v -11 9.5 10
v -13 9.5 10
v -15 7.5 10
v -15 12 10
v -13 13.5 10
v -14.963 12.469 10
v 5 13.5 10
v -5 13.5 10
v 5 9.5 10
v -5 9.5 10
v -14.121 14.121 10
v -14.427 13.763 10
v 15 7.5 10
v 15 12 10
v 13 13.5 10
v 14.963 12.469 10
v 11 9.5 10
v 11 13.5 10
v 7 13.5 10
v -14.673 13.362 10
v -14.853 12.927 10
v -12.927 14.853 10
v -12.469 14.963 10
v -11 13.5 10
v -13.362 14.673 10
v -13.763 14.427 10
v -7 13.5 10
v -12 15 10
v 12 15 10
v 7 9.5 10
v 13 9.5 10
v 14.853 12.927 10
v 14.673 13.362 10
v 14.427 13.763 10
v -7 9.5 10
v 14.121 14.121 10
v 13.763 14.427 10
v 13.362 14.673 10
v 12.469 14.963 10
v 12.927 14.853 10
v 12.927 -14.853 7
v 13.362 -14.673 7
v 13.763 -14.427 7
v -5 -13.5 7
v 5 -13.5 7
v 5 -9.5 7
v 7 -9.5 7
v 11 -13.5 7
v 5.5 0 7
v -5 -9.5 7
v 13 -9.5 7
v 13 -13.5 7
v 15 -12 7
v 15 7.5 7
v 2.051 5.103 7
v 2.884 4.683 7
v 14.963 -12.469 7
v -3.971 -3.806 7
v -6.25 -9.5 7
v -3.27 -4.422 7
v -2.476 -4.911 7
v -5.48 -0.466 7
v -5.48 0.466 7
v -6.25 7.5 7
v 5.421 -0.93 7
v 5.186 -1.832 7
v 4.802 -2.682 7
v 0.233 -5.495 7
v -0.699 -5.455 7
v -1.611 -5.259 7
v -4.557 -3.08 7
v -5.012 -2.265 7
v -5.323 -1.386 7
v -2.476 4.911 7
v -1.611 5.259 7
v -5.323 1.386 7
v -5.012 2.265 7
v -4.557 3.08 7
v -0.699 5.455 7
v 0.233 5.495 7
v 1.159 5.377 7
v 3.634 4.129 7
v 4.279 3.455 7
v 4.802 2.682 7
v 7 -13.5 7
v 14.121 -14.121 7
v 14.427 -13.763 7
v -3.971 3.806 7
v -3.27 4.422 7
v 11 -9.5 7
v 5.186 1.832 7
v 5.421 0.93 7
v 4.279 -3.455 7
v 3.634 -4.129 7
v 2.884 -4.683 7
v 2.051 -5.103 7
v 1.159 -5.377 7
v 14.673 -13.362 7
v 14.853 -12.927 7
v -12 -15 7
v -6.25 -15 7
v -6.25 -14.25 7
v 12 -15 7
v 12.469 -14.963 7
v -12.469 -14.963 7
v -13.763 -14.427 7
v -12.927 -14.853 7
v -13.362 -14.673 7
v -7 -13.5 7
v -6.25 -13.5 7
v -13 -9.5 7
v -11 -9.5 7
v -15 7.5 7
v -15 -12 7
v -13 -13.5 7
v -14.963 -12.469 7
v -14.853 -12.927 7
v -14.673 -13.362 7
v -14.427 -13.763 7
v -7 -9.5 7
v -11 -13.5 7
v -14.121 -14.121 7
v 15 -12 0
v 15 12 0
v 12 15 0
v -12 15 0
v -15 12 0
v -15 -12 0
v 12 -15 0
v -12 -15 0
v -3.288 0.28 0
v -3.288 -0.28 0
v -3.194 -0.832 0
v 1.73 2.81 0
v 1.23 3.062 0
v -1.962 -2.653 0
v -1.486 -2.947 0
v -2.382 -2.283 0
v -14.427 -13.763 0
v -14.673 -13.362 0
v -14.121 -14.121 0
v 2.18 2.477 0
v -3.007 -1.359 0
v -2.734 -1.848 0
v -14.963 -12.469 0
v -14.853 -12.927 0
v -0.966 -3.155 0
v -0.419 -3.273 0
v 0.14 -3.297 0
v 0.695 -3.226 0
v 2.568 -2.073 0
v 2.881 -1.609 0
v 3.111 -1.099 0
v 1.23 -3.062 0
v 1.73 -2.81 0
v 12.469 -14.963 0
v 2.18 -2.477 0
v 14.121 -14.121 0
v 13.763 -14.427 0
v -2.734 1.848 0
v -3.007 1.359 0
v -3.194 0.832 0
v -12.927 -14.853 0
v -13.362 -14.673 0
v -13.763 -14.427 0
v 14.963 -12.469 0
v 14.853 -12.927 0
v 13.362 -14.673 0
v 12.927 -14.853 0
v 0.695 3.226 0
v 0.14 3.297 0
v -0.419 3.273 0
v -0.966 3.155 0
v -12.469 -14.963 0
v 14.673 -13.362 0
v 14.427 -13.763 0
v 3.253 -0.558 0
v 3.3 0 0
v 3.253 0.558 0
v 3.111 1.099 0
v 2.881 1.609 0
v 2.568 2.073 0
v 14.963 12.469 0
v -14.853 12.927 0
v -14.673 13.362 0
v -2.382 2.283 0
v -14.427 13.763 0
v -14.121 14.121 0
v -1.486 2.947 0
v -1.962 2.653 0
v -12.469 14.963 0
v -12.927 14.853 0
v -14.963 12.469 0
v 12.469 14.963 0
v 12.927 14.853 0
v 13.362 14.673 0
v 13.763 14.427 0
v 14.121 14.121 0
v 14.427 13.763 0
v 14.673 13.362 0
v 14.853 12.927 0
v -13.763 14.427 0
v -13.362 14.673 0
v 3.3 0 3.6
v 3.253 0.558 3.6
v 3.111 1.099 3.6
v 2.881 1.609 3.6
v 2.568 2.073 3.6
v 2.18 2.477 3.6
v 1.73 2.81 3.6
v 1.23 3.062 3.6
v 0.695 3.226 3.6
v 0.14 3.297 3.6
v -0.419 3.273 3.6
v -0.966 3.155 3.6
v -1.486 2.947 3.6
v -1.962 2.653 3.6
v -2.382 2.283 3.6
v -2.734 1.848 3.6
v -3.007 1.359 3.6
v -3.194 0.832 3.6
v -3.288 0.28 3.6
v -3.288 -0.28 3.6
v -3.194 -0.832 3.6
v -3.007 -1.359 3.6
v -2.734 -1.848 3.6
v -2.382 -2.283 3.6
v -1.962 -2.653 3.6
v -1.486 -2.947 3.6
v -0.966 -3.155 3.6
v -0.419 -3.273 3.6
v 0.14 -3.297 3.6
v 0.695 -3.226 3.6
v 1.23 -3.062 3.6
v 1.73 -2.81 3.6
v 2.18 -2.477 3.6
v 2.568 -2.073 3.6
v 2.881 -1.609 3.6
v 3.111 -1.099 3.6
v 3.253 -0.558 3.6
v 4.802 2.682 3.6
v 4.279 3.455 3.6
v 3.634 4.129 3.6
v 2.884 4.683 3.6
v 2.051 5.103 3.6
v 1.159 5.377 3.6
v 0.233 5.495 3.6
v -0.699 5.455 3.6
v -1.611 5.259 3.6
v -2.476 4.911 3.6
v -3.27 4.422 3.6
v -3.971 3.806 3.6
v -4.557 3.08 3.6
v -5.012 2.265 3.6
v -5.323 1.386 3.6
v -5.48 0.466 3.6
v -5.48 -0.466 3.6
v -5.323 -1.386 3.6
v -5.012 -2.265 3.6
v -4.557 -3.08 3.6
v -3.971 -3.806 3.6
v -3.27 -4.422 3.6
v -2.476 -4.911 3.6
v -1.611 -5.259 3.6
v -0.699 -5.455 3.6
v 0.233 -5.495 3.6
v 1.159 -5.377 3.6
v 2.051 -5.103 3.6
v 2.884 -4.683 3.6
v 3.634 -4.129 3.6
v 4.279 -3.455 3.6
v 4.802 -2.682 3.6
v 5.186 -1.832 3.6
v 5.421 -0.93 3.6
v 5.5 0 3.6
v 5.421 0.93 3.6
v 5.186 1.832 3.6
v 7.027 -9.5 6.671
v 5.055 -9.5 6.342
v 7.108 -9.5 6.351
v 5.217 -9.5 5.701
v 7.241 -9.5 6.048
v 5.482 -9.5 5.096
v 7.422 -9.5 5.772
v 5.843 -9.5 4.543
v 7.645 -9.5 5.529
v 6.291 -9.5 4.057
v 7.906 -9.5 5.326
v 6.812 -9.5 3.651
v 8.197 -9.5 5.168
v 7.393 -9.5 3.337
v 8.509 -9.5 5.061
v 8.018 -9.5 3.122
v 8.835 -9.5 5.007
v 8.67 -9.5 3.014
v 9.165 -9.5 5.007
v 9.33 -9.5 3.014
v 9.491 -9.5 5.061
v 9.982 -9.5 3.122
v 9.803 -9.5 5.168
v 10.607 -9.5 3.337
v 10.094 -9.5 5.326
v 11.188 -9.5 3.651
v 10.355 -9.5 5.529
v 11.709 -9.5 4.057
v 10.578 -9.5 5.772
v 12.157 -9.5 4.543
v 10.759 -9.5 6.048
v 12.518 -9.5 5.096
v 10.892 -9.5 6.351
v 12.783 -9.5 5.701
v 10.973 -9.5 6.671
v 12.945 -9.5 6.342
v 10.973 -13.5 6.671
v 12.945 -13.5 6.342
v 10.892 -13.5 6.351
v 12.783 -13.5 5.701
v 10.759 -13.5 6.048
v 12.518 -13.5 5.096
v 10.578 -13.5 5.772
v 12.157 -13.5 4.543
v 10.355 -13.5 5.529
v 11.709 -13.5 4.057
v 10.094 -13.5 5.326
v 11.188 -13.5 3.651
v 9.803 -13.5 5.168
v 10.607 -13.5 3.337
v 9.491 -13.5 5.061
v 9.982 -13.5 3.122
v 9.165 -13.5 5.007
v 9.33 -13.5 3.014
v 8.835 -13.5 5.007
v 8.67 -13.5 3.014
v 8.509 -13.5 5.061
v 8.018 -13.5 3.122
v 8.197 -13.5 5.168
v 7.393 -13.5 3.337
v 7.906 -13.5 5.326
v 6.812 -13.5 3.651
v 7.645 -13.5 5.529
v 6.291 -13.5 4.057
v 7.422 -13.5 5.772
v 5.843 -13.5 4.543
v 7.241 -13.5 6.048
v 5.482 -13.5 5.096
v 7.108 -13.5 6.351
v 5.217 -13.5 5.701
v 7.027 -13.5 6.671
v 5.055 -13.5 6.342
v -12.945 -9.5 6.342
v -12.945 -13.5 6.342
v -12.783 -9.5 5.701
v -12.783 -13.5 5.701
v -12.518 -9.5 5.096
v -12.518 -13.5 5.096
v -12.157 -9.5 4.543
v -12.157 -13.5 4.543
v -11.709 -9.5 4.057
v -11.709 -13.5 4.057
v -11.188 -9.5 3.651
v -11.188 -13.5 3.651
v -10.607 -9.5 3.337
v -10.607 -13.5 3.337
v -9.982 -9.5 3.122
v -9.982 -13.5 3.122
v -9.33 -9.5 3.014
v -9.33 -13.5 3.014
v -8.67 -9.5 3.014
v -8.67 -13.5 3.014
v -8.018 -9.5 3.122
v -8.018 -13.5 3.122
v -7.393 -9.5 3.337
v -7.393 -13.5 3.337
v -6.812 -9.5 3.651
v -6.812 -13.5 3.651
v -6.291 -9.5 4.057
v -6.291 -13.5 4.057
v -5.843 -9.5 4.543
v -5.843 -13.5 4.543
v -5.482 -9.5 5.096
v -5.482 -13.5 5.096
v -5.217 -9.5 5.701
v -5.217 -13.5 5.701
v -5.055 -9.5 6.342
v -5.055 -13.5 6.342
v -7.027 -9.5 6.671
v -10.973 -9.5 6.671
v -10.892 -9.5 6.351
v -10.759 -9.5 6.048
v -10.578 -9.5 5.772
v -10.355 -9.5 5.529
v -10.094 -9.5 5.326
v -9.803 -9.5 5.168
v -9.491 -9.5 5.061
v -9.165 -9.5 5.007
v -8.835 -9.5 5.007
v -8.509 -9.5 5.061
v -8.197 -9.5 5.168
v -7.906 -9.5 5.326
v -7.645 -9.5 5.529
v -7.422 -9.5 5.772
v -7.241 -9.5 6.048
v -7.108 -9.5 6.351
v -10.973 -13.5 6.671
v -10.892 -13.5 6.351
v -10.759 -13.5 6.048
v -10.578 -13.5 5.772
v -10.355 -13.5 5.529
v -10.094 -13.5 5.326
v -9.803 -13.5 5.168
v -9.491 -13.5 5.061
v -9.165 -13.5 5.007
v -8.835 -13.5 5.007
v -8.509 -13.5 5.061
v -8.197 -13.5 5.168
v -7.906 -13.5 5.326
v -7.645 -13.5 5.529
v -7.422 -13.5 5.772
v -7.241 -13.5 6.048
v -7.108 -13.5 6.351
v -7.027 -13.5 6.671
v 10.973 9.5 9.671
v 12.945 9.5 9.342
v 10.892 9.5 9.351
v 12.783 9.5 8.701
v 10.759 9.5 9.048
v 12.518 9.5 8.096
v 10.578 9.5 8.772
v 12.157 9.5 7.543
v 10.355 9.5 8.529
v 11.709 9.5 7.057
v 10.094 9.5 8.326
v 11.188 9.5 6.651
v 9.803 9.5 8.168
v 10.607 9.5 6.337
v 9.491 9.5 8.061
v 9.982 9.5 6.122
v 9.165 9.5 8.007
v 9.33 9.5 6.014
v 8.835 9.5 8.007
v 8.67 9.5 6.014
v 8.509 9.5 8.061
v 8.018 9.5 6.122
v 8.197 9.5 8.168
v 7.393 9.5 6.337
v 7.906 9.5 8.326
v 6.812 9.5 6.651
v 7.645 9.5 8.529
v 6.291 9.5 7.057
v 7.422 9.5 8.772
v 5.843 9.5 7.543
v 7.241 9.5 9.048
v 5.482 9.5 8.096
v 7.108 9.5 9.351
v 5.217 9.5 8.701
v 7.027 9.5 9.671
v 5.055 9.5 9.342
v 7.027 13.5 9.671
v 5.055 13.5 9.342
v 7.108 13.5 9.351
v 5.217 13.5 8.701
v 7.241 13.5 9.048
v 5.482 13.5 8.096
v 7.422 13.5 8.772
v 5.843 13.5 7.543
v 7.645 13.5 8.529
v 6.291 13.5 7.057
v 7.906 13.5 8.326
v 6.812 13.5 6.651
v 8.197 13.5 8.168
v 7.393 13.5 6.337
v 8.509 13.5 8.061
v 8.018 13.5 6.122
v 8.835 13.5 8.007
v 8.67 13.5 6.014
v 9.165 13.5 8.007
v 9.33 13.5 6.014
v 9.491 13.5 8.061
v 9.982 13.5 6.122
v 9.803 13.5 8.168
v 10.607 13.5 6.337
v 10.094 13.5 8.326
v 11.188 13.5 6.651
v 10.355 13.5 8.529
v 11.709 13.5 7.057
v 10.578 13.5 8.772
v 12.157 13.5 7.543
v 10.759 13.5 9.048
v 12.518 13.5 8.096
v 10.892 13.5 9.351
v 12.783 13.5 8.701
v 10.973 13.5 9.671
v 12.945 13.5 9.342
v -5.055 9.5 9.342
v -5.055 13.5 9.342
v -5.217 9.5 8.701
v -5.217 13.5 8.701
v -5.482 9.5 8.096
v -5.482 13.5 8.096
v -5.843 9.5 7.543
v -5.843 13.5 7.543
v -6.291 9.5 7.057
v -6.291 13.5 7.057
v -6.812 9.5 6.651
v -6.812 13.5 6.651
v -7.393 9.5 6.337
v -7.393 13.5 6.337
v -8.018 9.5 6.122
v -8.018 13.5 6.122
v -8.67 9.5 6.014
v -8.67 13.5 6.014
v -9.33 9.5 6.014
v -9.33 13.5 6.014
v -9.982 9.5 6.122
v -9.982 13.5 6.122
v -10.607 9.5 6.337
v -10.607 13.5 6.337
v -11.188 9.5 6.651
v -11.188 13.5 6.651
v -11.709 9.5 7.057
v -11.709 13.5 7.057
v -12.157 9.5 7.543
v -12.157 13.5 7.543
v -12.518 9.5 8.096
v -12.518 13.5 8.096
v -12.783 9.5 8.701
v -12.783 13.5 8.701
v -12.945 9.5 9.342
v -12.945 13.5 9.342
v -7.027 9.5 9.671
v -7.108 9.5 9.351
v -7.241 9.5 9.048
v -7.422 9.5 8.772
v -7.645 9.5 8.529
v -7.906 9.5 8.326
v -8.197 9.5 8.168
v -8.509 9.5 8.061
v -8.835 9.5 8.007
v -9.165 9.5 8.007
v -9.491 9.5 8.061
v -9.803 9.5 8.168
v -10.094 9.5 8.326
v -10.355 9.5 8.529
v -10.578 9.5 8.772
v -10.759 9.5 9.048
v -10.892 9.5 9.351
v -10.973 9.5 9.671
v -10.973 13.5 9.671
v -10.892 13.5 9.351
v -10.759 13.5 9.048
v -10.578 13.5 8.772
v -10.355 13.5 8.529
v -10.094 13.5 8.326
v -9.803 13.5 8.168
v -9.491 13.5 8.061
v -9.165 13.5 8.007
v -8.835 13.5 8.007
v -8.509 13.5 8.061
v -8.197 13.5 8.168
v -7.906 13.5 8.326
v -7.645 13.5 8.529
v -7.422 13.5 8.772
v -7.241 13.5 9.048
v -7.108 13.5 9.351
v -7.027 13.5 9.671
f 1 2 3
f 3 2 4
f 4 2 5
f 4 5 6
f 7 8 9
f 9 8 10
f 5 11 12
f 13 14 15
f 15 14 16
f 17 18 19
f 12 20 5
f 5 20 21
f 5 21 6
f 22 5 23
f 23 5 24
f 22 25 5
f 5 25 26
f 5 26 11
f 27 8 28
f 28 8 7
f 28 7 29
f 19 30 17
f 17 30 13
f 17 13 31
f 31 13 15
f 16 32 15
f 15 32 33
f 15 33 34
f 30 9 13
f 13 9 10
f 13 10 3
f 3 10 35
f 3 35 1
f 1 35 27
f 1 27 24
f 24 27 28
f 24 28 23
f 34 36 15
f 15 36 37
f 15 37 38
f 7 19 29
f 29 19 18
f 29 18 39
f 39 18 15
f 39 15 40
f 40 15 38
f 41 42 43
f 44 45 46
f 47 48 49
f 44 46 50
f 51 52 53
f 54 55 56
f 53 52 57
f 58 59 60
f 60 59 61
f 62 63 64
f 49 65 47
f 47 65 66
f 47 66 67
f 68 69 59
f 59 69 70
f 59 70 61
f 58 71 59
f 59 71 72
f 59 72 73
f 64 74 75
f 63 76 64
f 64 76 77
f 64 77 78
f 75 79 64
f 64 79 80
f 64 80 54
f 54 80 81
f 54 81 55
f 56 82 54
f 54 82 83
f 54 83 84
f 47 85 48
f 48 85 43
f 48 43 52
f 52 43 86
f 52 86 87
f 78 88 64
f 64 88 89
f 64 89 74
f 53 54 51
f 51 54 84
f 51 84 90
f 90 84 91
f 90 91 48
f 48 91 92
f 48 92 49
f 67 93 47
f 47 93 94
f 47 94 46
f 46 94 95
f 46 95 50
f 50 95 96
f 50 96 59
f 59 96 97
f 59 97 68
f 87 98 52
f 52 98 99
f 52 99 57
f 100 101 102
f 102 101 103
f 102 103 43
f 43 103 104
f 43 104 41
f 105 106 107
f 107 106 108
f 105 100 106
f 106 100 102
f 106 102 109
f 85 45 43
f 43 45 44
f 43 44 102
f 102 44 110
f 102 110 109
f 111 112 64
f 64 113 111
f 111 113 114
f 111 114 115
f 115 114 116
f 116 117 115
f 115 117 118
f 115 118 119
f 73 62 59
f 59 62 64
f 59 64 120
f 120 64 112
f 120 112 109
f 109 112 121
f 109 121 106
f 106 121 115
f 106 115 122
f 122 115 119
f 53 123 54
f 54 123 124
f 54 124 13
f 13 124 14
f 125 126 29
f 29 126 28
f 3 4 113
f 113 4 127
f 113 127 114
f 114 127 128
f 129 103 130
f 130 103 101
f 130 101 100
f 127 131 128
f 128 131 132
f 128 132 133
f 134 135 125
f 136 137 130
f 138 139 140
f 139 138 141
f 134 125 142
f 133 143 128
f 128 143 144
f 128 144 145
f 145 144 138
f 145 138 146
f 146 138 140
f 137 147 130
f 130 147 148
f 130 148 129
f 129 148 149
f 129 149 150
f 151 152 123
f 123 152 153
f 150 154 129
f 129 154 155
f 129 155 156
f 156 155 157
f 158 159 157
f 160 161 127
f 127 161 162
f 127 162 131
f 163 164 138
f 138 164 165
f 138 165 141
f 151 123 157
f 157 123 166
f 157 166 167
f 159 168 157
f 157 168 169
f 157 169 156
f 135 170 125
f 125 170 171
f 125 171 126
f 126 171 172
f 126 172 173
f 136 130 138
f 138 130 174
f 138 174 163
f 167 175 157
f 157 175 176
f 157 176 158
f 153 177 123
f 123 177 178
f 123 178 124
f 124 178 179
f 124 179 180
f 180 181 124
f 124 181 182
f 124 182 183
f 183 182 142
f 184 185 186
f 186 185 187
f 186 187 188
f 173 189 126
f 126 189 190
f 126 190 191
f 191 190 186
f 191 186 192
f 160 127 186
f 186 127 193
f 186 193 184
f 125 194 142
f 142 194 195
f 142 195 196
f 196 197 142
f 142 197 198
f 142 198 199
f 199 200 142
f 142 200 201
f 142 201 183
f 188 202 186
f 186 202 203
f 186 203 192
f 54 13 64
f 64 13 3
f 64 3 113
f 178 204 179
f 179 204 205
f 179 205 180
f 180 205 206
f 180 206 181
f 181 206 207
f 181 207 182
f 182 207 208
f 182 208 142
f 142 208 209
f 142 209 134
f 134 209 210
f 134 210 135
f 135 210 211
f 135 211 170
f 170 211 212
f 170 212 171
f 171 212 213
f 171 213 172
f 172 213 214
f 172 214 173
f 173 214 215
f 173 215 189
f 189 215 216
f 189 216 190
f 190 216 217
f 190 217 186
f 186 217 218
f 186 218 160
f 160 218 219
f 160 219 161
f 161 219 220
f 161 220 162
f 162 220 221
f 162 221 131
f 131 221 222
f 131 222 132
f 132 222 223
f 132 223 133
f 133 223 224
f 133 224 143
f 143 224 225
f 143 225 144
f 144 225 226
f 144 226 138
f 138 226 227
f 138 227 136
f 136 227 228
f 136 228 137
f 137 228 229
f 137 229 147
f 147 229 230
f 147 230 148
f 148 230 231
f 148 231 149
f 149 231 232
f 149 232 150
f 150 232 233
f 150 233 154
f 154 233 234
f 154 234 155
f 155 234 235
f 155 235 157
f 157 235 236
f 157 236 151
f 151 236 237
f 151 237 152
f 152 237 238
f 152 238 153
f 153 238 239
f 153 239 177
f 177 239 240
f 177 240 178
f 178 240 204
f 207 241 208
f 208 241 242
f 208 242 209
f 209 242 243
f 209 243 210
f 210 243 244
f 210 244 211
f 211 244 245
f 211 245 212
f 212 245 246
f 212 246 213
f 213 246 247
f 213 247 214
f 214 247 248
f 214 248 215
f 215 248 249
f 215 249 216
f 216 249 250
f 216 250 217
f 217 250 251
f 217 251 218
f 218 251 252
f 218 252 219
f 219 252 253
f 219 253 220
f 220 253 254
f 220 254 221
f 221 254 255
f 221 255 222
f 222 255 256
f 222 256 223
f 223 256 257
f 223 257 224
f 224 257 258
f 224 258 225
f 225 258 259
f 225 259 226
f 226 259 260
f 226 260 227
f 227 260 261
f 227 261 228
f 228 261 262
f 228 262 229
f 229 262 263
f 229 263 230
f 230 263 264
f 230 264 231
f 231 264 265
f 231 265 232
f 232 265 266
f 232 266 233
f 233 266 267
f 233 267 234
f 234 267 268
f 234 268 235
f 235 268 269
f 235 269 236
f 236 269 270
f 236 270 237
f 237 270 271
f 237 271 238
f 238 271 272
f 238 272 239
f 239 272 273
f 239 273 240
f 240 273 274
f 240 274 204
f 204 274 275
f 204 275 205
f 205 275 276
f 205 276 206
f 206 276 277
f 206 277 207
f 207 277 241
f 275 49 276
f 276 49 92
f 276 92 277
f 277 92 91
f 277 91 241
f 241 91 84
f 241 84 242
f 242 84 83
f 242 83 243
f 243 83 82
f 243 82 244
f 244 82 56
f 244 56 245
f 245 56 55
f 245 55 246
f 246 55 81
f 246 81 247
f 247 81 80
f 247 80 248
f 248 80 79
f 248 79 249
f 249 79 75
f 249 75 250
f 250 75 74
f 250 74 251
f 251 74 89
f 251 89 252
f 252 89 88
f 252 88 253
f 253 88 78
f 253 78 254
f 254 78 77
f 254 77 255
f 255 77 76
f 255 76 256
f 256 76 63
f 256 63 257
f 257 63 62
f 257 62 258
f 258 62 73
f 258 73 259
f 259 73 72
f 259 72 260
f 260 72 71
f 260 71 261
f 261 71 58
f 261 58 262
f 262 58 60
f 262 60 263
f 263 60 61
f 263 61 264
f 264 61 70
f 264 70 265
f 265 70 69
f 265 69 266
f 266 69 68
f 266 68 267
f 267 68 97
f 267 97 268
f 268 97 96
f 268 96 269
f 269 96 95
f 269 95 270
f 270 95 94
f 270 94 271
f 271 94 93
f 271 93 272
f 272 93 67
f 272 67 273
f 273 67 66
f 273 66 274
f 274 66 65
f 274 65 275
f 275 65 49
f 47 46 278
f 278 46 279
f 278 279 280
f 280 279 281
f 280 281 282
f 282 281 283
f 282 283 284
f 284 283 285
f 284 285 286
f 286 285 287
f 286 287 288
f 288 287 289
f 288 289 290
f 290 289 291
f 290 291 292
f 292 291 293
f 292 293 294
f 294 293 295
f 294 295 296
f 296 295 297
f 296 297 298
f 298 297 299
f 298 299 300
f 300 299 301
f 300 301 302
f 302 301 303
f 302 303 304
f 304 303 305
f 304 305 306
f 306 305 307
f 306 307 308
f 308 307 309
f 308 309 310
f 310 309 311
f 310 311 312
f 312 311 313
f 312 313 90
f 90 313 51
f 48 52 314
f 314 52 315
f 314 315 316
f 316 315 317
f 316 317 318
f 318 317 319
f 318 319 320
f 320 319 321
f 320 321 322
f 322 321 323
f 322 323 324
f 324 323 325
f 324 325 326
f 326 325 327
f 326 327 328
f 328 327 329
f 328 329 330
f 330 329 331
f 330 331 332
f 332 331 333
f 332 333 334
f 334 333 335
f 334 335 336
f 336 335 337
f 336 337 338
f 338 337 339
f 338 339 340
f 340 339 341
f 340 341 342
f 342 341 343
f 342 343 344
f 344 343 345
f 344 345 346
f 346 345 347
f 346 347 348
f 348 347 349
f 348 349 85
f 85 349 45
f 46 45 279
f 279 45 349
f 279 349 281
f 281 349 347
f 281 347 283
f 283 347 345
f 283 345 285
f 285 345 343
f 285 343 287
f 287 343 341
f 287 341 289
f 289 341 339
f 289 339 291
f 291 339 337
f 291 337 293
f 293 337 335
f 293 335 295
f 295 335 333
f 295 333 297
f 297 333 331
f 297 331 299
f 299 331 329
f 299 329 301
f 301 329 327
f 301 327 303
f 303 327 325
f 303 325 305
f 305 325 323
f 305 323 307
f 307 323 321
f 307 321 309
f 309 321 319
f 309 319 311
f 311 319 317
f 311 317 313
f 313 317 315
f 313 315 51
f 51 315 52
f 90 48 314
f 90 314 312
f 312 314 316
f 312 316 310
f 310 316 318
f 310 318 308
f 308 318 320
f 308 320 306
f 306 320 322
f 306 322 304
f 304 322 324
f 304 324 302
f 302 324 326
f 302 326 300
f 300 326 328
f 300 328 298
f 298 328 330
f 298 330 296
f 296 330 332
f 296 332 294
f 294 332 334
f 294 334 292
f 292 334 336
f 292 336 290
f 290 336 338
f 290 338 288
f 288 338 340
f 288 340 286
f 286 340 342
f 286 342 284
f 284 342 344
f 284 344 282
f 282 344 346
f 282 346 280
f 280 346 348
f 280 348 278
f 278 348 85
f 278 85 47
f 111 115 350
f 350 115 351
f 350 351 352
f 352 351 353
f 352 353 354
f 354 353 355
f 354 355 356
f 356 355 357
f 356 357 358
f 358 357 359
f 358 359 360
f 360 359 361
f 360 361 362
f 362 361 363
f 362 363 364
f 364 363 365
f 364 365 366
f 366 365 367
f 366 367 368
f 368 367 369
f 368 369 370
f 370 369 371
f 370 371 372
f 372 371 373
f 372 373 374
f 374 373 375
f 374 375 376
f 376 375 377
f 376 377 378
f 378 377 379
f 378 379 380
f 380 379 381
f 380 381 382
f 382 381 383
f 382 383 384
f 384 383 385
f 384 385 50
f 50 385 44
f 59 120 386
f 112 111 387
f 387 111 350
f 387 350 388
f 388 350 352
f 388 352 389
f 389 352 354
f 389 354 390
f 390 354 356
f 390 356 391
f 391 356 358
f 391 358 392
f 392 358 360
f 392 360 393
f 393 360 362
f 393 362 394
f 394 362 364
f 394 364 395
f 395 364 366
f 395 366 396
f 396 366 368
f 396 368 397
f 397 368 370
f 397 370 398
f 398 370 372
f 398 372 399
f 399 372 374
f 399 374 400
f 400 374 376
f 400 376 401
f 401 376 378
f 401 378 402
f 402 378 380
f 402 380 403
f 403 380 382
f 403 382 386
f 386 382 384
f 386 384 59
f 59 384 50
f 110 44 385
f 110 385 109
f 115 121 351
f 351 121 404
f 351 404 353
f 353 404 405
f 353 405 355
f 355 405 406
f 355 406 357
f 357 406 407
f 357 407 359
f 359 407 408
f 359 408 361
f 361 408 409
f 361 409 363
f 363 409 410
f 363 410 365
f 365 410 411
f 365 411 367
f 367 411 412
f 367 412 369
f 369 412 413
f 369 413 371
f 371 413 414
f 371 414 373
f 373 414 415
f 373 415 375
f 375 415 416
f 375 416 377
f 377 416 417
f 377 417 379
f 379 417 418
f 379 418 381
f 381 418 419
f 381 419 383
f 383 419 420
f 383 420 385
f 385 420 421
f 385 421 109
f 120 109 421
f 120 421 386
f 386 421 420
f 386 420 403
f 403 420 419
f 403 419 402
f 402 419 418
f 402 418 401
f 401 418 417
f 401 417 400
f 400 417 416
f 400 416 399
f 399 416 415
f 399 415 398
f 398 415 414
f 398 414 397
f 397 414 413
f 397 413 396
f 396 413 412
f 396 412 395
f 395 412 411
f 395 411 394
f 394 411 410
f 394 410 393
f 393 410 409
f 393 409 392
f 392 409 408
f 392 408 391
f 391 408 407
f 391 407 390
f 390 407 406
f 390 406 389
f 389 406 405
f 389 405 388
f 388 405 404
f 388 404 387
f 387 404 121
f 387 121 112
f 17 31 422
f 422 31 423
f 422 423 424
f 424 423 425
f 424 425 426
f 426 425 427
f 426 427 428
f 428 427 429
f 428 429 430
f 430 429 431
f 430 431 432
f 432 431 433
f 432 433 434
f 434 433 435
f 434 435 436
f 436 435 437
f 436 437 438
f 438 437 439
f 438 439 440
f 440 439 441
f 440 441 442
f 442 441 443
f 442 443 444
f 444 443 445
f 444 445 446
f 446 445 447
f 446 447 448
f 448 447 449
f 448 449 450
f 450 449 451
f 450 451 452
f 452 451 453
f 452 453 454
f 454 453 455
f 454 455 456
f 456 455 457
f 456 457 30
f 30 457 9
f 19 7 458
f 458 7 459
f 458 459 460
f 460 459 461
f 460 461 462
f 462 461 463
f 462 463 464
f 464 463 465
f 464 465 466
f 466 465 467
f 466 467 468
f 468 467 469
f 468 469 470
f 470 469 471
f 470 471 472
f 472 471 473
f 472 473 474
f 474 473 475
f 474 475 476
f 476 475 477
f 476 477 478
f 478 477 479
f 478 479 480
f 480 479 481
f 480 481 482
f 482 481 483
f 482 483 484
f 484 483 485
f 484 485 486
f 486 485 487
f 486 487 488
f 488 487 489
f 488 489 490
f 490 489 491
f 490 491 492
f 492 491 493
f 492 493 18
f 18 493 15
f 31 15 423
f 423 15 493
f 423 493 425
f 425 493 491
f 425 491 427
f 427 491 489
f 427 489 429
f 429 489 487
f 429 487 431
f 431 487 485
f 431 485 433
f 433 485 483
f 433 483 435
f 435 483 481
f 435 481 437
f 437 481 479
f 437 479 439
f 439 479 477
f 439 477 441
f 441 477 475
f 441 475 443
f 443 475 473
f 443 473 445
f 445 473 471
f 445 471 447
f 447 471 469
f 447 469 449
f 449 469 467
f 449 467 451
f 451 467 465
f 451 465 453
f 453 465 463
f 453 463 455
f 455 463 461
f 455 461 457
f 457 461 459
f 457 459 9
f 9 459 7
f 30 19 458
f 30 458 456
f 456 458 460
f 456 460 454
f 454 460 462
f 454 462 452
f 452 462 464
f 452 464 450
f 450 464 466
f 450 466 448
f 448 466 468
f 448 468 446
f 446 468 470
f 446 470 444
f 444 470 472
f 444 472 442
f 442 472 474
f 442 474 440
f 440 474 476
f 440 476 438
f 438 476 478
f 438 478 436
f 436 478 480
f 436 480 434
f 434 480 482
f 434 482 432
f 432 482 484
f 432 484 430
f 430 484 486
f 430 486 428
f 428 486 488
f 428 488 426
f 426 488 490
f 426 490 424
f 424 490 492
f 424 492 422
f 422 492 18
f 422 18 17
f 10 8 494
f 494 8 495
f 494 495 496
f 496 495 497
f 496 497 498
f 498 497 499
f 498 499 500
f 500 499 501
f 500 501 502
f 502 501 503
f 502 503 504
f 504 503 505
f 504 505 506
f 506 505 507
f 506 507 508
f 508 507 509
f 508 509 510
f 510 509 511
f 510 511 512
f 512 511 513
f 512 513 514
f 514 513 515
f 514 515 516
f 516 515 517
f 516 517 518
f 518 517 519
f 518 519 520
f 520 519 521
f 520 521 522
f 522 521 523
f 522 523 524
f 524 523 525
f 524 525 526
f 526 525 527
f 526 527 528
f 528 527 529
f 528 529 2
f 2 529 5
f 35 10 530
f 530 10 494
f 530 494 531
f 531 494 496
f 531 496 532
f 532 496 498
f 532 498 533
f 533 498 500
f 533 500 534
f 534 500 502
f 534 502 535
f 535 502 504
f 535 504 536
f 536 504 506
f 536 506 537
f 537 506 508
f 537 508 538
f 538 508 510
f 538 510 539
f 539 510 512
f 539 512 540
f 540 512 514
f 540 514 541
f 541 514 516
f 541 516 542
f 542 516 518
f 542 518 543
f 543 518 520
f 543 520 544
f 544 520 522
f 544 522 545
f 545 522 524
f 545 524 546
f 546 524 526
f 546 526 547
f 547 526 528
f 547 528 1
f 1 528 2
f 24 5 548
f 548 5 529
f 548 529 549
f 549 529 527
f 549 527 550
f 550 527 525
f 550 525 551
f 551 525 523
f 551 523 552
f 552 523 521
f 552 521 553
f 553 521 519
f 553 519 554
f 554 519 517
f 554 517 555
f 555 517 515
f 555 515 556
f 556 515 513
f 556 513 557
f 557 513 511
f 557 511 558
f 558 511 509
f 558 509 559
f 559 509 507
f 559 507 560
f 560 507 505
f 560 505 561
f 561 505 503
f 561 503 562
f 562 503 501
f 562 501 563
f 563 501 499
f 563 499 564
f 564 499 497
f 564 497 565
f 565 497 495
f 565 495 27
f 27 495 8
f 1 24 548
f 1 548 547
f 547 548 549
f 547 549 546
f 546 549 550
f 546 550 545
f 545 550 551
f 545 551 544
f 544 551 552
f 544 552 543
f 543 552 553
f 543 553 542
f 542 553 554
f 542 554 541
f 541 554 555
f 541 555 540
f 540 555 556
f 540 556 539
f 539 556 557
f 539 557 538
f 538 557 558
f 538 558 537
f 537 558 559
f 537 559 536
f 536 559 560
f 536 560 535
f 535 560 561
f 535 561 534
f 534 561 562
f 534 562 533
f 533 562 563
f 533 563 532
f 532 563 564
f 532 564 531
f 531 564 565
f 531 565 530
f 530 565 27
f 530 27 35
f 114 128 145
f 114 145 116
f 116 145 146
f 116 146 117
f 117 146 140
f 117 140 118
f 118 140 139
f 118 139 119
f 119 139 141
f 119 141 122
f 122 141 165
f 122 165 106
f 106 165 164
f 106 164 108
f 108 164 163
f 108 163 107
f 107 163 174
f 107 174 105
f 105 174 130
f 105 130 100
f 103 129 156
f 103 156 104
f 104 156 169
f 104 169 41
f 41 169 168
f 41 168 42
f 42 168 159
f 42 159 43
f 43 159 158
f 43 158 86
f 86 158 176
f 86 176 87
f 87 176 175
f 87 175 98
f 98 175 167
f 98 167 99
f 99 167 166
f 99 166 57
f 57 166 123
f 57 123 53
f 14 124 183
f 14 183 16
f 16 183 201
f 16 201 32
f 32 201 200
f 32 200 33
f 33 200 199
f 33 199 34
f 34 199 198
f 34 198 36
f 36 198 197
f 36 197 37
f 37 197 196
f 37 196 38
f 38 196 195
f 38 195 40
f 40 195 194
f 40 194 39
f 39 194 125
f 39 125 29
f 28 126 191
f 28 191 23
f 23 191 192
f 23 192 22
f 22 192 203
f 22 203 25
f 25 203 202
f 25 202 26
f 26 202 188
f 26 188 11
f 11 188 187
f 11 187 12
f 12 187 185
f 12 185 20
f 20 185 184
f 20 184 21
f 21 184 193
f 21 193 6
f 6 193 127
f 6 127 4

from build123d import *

# Parameters (mm, degrees)
BASE_SKETCH_W           = 30
BASE_SKETCH_H           = 30
BASE_DEPTH              = 7
HIGHER_ADAPTER_SKETCH_W = 30
HIGHER_ADAPTER_SKETCH_H = 7.5
HIGHER_ADAPTER_DEPTH    = 3
MOUNT_SCREW_D           = 6.6
MOUNT_SCREW_CBORE_D     = 11
MOUNT_SCREW_CBORE_DEPTH = 3.4
BOTTOM_TIES_SKETCH_R    = 4
BOTTOM_TIES_SKETCH_R_2  = 2
BOTTOM_TIES_DEPTH       = 4
TOP_TIES_SKETCH_R       = 4
TOP_TIES_SKETCH_R_2     = 2
TOP_TIES_DEPTH          = 4
ROUNDING_R              = 3


with BuildPart() as part:
    # Base sketch → Base (new body)
    with BuildSketch(Plane.XY):
        Rectangle(BASE_SKETCH_W, BASE_SKETCH_H)
    extrude(amount=BASE_DEPTH)

    # Higher adapter sketch → Higher adapter (add)
    with BuildSketch(Plane.XY.offset(7)):
        with Locations((0, 11.25)):
            Rectangle(HIGHER_ADAPTER_SKETCH_W, HIGHER_ADAPTER_SKETCH_H)
    extrude(amount=HIGHER_ADAPTER_DEPTH)

    # Mount screw (through all)
    with Locations(Plane.XY.offset(7)):
        with Locations((0, 0)):
            CounterBoreHole(MOUNT_SCREW_D / 2, MOUNT_SCREW_CBORE_D / 2, MOUNT_SCREW_CBORE_DEPTH)

    # Bottom ties sketch → Bottom ties (cut)
    # profile 1 of 2: a face of its own
    with BuildSketch(Plane.XZ.offset(13.5)):
        with Locations((-9, 7)):
            Circle(BOTTOM_TIES_SKETCH_R)
        with Locations((-9, 7)):
            Circle(BOTTOM_TIES_SKETCH_R_2, mode=Mode.SUBTRACT)
    # profile 2 of 2: a face of its own
    with BuildSketch(Plane.XZ.offset(13.5)):
        with Locations((9, 7)):
            Circle(BOTTOM_TIES_SKETCH_R)
        with Locations((9, 7)):
            Circle(BOTTOM_TIES_SKETCH_R_2, mode=Mode.SUBTRACT)
    extrude(amount=-BOTTOM_TIES_DEPTH, mode=Mode.SUBTRACT)

    # Top ties sketch → Top ties (cut)
    # profile 1 of 2: a face of its own
    with BuildSketch(Plane(origin=(0, 13.5, 0), x_dir=(1, 0, 0), z_dir=(0, 1, 0))):
        with Locations((-9, -10)):
            Circle(TOP_TIES_SKETCH_R)
        with Locations((-9, -10)):
            Circle(TOP_TIES_SKETCH_R_2, mode=Mode.SUBTRACT)
    # profile 2 of 2: a face of its own
    with BuildSketch(Plane(origin=(0, 13.5, 0), x_dir=(1, 0, 0), z_dir=(0, 1, 0))):
        with Locations((9, -10)):
            Circle(TOP_TIES_SKETCH_R)
        with Locations((9, -10)):
            Circle(TOP_TIES_SKETCH_R_2, mode=Mode.SUBTRACT)
    extrude(amount=-TOP_TIES_DEPTH, mode=Mode.SUBTRACT)

    # Rounding
    rounding_edges = [part.edges().sort_by_distance(p)[0] for p in [
        (15, -15, 3.5),
        (-15, -15, 3.5),
        (-15, 15, 5),
        (15, 15, 5),
    ]]
    fillet(rounding_edges, radius=ROUNDING_R)


solid = part.part
